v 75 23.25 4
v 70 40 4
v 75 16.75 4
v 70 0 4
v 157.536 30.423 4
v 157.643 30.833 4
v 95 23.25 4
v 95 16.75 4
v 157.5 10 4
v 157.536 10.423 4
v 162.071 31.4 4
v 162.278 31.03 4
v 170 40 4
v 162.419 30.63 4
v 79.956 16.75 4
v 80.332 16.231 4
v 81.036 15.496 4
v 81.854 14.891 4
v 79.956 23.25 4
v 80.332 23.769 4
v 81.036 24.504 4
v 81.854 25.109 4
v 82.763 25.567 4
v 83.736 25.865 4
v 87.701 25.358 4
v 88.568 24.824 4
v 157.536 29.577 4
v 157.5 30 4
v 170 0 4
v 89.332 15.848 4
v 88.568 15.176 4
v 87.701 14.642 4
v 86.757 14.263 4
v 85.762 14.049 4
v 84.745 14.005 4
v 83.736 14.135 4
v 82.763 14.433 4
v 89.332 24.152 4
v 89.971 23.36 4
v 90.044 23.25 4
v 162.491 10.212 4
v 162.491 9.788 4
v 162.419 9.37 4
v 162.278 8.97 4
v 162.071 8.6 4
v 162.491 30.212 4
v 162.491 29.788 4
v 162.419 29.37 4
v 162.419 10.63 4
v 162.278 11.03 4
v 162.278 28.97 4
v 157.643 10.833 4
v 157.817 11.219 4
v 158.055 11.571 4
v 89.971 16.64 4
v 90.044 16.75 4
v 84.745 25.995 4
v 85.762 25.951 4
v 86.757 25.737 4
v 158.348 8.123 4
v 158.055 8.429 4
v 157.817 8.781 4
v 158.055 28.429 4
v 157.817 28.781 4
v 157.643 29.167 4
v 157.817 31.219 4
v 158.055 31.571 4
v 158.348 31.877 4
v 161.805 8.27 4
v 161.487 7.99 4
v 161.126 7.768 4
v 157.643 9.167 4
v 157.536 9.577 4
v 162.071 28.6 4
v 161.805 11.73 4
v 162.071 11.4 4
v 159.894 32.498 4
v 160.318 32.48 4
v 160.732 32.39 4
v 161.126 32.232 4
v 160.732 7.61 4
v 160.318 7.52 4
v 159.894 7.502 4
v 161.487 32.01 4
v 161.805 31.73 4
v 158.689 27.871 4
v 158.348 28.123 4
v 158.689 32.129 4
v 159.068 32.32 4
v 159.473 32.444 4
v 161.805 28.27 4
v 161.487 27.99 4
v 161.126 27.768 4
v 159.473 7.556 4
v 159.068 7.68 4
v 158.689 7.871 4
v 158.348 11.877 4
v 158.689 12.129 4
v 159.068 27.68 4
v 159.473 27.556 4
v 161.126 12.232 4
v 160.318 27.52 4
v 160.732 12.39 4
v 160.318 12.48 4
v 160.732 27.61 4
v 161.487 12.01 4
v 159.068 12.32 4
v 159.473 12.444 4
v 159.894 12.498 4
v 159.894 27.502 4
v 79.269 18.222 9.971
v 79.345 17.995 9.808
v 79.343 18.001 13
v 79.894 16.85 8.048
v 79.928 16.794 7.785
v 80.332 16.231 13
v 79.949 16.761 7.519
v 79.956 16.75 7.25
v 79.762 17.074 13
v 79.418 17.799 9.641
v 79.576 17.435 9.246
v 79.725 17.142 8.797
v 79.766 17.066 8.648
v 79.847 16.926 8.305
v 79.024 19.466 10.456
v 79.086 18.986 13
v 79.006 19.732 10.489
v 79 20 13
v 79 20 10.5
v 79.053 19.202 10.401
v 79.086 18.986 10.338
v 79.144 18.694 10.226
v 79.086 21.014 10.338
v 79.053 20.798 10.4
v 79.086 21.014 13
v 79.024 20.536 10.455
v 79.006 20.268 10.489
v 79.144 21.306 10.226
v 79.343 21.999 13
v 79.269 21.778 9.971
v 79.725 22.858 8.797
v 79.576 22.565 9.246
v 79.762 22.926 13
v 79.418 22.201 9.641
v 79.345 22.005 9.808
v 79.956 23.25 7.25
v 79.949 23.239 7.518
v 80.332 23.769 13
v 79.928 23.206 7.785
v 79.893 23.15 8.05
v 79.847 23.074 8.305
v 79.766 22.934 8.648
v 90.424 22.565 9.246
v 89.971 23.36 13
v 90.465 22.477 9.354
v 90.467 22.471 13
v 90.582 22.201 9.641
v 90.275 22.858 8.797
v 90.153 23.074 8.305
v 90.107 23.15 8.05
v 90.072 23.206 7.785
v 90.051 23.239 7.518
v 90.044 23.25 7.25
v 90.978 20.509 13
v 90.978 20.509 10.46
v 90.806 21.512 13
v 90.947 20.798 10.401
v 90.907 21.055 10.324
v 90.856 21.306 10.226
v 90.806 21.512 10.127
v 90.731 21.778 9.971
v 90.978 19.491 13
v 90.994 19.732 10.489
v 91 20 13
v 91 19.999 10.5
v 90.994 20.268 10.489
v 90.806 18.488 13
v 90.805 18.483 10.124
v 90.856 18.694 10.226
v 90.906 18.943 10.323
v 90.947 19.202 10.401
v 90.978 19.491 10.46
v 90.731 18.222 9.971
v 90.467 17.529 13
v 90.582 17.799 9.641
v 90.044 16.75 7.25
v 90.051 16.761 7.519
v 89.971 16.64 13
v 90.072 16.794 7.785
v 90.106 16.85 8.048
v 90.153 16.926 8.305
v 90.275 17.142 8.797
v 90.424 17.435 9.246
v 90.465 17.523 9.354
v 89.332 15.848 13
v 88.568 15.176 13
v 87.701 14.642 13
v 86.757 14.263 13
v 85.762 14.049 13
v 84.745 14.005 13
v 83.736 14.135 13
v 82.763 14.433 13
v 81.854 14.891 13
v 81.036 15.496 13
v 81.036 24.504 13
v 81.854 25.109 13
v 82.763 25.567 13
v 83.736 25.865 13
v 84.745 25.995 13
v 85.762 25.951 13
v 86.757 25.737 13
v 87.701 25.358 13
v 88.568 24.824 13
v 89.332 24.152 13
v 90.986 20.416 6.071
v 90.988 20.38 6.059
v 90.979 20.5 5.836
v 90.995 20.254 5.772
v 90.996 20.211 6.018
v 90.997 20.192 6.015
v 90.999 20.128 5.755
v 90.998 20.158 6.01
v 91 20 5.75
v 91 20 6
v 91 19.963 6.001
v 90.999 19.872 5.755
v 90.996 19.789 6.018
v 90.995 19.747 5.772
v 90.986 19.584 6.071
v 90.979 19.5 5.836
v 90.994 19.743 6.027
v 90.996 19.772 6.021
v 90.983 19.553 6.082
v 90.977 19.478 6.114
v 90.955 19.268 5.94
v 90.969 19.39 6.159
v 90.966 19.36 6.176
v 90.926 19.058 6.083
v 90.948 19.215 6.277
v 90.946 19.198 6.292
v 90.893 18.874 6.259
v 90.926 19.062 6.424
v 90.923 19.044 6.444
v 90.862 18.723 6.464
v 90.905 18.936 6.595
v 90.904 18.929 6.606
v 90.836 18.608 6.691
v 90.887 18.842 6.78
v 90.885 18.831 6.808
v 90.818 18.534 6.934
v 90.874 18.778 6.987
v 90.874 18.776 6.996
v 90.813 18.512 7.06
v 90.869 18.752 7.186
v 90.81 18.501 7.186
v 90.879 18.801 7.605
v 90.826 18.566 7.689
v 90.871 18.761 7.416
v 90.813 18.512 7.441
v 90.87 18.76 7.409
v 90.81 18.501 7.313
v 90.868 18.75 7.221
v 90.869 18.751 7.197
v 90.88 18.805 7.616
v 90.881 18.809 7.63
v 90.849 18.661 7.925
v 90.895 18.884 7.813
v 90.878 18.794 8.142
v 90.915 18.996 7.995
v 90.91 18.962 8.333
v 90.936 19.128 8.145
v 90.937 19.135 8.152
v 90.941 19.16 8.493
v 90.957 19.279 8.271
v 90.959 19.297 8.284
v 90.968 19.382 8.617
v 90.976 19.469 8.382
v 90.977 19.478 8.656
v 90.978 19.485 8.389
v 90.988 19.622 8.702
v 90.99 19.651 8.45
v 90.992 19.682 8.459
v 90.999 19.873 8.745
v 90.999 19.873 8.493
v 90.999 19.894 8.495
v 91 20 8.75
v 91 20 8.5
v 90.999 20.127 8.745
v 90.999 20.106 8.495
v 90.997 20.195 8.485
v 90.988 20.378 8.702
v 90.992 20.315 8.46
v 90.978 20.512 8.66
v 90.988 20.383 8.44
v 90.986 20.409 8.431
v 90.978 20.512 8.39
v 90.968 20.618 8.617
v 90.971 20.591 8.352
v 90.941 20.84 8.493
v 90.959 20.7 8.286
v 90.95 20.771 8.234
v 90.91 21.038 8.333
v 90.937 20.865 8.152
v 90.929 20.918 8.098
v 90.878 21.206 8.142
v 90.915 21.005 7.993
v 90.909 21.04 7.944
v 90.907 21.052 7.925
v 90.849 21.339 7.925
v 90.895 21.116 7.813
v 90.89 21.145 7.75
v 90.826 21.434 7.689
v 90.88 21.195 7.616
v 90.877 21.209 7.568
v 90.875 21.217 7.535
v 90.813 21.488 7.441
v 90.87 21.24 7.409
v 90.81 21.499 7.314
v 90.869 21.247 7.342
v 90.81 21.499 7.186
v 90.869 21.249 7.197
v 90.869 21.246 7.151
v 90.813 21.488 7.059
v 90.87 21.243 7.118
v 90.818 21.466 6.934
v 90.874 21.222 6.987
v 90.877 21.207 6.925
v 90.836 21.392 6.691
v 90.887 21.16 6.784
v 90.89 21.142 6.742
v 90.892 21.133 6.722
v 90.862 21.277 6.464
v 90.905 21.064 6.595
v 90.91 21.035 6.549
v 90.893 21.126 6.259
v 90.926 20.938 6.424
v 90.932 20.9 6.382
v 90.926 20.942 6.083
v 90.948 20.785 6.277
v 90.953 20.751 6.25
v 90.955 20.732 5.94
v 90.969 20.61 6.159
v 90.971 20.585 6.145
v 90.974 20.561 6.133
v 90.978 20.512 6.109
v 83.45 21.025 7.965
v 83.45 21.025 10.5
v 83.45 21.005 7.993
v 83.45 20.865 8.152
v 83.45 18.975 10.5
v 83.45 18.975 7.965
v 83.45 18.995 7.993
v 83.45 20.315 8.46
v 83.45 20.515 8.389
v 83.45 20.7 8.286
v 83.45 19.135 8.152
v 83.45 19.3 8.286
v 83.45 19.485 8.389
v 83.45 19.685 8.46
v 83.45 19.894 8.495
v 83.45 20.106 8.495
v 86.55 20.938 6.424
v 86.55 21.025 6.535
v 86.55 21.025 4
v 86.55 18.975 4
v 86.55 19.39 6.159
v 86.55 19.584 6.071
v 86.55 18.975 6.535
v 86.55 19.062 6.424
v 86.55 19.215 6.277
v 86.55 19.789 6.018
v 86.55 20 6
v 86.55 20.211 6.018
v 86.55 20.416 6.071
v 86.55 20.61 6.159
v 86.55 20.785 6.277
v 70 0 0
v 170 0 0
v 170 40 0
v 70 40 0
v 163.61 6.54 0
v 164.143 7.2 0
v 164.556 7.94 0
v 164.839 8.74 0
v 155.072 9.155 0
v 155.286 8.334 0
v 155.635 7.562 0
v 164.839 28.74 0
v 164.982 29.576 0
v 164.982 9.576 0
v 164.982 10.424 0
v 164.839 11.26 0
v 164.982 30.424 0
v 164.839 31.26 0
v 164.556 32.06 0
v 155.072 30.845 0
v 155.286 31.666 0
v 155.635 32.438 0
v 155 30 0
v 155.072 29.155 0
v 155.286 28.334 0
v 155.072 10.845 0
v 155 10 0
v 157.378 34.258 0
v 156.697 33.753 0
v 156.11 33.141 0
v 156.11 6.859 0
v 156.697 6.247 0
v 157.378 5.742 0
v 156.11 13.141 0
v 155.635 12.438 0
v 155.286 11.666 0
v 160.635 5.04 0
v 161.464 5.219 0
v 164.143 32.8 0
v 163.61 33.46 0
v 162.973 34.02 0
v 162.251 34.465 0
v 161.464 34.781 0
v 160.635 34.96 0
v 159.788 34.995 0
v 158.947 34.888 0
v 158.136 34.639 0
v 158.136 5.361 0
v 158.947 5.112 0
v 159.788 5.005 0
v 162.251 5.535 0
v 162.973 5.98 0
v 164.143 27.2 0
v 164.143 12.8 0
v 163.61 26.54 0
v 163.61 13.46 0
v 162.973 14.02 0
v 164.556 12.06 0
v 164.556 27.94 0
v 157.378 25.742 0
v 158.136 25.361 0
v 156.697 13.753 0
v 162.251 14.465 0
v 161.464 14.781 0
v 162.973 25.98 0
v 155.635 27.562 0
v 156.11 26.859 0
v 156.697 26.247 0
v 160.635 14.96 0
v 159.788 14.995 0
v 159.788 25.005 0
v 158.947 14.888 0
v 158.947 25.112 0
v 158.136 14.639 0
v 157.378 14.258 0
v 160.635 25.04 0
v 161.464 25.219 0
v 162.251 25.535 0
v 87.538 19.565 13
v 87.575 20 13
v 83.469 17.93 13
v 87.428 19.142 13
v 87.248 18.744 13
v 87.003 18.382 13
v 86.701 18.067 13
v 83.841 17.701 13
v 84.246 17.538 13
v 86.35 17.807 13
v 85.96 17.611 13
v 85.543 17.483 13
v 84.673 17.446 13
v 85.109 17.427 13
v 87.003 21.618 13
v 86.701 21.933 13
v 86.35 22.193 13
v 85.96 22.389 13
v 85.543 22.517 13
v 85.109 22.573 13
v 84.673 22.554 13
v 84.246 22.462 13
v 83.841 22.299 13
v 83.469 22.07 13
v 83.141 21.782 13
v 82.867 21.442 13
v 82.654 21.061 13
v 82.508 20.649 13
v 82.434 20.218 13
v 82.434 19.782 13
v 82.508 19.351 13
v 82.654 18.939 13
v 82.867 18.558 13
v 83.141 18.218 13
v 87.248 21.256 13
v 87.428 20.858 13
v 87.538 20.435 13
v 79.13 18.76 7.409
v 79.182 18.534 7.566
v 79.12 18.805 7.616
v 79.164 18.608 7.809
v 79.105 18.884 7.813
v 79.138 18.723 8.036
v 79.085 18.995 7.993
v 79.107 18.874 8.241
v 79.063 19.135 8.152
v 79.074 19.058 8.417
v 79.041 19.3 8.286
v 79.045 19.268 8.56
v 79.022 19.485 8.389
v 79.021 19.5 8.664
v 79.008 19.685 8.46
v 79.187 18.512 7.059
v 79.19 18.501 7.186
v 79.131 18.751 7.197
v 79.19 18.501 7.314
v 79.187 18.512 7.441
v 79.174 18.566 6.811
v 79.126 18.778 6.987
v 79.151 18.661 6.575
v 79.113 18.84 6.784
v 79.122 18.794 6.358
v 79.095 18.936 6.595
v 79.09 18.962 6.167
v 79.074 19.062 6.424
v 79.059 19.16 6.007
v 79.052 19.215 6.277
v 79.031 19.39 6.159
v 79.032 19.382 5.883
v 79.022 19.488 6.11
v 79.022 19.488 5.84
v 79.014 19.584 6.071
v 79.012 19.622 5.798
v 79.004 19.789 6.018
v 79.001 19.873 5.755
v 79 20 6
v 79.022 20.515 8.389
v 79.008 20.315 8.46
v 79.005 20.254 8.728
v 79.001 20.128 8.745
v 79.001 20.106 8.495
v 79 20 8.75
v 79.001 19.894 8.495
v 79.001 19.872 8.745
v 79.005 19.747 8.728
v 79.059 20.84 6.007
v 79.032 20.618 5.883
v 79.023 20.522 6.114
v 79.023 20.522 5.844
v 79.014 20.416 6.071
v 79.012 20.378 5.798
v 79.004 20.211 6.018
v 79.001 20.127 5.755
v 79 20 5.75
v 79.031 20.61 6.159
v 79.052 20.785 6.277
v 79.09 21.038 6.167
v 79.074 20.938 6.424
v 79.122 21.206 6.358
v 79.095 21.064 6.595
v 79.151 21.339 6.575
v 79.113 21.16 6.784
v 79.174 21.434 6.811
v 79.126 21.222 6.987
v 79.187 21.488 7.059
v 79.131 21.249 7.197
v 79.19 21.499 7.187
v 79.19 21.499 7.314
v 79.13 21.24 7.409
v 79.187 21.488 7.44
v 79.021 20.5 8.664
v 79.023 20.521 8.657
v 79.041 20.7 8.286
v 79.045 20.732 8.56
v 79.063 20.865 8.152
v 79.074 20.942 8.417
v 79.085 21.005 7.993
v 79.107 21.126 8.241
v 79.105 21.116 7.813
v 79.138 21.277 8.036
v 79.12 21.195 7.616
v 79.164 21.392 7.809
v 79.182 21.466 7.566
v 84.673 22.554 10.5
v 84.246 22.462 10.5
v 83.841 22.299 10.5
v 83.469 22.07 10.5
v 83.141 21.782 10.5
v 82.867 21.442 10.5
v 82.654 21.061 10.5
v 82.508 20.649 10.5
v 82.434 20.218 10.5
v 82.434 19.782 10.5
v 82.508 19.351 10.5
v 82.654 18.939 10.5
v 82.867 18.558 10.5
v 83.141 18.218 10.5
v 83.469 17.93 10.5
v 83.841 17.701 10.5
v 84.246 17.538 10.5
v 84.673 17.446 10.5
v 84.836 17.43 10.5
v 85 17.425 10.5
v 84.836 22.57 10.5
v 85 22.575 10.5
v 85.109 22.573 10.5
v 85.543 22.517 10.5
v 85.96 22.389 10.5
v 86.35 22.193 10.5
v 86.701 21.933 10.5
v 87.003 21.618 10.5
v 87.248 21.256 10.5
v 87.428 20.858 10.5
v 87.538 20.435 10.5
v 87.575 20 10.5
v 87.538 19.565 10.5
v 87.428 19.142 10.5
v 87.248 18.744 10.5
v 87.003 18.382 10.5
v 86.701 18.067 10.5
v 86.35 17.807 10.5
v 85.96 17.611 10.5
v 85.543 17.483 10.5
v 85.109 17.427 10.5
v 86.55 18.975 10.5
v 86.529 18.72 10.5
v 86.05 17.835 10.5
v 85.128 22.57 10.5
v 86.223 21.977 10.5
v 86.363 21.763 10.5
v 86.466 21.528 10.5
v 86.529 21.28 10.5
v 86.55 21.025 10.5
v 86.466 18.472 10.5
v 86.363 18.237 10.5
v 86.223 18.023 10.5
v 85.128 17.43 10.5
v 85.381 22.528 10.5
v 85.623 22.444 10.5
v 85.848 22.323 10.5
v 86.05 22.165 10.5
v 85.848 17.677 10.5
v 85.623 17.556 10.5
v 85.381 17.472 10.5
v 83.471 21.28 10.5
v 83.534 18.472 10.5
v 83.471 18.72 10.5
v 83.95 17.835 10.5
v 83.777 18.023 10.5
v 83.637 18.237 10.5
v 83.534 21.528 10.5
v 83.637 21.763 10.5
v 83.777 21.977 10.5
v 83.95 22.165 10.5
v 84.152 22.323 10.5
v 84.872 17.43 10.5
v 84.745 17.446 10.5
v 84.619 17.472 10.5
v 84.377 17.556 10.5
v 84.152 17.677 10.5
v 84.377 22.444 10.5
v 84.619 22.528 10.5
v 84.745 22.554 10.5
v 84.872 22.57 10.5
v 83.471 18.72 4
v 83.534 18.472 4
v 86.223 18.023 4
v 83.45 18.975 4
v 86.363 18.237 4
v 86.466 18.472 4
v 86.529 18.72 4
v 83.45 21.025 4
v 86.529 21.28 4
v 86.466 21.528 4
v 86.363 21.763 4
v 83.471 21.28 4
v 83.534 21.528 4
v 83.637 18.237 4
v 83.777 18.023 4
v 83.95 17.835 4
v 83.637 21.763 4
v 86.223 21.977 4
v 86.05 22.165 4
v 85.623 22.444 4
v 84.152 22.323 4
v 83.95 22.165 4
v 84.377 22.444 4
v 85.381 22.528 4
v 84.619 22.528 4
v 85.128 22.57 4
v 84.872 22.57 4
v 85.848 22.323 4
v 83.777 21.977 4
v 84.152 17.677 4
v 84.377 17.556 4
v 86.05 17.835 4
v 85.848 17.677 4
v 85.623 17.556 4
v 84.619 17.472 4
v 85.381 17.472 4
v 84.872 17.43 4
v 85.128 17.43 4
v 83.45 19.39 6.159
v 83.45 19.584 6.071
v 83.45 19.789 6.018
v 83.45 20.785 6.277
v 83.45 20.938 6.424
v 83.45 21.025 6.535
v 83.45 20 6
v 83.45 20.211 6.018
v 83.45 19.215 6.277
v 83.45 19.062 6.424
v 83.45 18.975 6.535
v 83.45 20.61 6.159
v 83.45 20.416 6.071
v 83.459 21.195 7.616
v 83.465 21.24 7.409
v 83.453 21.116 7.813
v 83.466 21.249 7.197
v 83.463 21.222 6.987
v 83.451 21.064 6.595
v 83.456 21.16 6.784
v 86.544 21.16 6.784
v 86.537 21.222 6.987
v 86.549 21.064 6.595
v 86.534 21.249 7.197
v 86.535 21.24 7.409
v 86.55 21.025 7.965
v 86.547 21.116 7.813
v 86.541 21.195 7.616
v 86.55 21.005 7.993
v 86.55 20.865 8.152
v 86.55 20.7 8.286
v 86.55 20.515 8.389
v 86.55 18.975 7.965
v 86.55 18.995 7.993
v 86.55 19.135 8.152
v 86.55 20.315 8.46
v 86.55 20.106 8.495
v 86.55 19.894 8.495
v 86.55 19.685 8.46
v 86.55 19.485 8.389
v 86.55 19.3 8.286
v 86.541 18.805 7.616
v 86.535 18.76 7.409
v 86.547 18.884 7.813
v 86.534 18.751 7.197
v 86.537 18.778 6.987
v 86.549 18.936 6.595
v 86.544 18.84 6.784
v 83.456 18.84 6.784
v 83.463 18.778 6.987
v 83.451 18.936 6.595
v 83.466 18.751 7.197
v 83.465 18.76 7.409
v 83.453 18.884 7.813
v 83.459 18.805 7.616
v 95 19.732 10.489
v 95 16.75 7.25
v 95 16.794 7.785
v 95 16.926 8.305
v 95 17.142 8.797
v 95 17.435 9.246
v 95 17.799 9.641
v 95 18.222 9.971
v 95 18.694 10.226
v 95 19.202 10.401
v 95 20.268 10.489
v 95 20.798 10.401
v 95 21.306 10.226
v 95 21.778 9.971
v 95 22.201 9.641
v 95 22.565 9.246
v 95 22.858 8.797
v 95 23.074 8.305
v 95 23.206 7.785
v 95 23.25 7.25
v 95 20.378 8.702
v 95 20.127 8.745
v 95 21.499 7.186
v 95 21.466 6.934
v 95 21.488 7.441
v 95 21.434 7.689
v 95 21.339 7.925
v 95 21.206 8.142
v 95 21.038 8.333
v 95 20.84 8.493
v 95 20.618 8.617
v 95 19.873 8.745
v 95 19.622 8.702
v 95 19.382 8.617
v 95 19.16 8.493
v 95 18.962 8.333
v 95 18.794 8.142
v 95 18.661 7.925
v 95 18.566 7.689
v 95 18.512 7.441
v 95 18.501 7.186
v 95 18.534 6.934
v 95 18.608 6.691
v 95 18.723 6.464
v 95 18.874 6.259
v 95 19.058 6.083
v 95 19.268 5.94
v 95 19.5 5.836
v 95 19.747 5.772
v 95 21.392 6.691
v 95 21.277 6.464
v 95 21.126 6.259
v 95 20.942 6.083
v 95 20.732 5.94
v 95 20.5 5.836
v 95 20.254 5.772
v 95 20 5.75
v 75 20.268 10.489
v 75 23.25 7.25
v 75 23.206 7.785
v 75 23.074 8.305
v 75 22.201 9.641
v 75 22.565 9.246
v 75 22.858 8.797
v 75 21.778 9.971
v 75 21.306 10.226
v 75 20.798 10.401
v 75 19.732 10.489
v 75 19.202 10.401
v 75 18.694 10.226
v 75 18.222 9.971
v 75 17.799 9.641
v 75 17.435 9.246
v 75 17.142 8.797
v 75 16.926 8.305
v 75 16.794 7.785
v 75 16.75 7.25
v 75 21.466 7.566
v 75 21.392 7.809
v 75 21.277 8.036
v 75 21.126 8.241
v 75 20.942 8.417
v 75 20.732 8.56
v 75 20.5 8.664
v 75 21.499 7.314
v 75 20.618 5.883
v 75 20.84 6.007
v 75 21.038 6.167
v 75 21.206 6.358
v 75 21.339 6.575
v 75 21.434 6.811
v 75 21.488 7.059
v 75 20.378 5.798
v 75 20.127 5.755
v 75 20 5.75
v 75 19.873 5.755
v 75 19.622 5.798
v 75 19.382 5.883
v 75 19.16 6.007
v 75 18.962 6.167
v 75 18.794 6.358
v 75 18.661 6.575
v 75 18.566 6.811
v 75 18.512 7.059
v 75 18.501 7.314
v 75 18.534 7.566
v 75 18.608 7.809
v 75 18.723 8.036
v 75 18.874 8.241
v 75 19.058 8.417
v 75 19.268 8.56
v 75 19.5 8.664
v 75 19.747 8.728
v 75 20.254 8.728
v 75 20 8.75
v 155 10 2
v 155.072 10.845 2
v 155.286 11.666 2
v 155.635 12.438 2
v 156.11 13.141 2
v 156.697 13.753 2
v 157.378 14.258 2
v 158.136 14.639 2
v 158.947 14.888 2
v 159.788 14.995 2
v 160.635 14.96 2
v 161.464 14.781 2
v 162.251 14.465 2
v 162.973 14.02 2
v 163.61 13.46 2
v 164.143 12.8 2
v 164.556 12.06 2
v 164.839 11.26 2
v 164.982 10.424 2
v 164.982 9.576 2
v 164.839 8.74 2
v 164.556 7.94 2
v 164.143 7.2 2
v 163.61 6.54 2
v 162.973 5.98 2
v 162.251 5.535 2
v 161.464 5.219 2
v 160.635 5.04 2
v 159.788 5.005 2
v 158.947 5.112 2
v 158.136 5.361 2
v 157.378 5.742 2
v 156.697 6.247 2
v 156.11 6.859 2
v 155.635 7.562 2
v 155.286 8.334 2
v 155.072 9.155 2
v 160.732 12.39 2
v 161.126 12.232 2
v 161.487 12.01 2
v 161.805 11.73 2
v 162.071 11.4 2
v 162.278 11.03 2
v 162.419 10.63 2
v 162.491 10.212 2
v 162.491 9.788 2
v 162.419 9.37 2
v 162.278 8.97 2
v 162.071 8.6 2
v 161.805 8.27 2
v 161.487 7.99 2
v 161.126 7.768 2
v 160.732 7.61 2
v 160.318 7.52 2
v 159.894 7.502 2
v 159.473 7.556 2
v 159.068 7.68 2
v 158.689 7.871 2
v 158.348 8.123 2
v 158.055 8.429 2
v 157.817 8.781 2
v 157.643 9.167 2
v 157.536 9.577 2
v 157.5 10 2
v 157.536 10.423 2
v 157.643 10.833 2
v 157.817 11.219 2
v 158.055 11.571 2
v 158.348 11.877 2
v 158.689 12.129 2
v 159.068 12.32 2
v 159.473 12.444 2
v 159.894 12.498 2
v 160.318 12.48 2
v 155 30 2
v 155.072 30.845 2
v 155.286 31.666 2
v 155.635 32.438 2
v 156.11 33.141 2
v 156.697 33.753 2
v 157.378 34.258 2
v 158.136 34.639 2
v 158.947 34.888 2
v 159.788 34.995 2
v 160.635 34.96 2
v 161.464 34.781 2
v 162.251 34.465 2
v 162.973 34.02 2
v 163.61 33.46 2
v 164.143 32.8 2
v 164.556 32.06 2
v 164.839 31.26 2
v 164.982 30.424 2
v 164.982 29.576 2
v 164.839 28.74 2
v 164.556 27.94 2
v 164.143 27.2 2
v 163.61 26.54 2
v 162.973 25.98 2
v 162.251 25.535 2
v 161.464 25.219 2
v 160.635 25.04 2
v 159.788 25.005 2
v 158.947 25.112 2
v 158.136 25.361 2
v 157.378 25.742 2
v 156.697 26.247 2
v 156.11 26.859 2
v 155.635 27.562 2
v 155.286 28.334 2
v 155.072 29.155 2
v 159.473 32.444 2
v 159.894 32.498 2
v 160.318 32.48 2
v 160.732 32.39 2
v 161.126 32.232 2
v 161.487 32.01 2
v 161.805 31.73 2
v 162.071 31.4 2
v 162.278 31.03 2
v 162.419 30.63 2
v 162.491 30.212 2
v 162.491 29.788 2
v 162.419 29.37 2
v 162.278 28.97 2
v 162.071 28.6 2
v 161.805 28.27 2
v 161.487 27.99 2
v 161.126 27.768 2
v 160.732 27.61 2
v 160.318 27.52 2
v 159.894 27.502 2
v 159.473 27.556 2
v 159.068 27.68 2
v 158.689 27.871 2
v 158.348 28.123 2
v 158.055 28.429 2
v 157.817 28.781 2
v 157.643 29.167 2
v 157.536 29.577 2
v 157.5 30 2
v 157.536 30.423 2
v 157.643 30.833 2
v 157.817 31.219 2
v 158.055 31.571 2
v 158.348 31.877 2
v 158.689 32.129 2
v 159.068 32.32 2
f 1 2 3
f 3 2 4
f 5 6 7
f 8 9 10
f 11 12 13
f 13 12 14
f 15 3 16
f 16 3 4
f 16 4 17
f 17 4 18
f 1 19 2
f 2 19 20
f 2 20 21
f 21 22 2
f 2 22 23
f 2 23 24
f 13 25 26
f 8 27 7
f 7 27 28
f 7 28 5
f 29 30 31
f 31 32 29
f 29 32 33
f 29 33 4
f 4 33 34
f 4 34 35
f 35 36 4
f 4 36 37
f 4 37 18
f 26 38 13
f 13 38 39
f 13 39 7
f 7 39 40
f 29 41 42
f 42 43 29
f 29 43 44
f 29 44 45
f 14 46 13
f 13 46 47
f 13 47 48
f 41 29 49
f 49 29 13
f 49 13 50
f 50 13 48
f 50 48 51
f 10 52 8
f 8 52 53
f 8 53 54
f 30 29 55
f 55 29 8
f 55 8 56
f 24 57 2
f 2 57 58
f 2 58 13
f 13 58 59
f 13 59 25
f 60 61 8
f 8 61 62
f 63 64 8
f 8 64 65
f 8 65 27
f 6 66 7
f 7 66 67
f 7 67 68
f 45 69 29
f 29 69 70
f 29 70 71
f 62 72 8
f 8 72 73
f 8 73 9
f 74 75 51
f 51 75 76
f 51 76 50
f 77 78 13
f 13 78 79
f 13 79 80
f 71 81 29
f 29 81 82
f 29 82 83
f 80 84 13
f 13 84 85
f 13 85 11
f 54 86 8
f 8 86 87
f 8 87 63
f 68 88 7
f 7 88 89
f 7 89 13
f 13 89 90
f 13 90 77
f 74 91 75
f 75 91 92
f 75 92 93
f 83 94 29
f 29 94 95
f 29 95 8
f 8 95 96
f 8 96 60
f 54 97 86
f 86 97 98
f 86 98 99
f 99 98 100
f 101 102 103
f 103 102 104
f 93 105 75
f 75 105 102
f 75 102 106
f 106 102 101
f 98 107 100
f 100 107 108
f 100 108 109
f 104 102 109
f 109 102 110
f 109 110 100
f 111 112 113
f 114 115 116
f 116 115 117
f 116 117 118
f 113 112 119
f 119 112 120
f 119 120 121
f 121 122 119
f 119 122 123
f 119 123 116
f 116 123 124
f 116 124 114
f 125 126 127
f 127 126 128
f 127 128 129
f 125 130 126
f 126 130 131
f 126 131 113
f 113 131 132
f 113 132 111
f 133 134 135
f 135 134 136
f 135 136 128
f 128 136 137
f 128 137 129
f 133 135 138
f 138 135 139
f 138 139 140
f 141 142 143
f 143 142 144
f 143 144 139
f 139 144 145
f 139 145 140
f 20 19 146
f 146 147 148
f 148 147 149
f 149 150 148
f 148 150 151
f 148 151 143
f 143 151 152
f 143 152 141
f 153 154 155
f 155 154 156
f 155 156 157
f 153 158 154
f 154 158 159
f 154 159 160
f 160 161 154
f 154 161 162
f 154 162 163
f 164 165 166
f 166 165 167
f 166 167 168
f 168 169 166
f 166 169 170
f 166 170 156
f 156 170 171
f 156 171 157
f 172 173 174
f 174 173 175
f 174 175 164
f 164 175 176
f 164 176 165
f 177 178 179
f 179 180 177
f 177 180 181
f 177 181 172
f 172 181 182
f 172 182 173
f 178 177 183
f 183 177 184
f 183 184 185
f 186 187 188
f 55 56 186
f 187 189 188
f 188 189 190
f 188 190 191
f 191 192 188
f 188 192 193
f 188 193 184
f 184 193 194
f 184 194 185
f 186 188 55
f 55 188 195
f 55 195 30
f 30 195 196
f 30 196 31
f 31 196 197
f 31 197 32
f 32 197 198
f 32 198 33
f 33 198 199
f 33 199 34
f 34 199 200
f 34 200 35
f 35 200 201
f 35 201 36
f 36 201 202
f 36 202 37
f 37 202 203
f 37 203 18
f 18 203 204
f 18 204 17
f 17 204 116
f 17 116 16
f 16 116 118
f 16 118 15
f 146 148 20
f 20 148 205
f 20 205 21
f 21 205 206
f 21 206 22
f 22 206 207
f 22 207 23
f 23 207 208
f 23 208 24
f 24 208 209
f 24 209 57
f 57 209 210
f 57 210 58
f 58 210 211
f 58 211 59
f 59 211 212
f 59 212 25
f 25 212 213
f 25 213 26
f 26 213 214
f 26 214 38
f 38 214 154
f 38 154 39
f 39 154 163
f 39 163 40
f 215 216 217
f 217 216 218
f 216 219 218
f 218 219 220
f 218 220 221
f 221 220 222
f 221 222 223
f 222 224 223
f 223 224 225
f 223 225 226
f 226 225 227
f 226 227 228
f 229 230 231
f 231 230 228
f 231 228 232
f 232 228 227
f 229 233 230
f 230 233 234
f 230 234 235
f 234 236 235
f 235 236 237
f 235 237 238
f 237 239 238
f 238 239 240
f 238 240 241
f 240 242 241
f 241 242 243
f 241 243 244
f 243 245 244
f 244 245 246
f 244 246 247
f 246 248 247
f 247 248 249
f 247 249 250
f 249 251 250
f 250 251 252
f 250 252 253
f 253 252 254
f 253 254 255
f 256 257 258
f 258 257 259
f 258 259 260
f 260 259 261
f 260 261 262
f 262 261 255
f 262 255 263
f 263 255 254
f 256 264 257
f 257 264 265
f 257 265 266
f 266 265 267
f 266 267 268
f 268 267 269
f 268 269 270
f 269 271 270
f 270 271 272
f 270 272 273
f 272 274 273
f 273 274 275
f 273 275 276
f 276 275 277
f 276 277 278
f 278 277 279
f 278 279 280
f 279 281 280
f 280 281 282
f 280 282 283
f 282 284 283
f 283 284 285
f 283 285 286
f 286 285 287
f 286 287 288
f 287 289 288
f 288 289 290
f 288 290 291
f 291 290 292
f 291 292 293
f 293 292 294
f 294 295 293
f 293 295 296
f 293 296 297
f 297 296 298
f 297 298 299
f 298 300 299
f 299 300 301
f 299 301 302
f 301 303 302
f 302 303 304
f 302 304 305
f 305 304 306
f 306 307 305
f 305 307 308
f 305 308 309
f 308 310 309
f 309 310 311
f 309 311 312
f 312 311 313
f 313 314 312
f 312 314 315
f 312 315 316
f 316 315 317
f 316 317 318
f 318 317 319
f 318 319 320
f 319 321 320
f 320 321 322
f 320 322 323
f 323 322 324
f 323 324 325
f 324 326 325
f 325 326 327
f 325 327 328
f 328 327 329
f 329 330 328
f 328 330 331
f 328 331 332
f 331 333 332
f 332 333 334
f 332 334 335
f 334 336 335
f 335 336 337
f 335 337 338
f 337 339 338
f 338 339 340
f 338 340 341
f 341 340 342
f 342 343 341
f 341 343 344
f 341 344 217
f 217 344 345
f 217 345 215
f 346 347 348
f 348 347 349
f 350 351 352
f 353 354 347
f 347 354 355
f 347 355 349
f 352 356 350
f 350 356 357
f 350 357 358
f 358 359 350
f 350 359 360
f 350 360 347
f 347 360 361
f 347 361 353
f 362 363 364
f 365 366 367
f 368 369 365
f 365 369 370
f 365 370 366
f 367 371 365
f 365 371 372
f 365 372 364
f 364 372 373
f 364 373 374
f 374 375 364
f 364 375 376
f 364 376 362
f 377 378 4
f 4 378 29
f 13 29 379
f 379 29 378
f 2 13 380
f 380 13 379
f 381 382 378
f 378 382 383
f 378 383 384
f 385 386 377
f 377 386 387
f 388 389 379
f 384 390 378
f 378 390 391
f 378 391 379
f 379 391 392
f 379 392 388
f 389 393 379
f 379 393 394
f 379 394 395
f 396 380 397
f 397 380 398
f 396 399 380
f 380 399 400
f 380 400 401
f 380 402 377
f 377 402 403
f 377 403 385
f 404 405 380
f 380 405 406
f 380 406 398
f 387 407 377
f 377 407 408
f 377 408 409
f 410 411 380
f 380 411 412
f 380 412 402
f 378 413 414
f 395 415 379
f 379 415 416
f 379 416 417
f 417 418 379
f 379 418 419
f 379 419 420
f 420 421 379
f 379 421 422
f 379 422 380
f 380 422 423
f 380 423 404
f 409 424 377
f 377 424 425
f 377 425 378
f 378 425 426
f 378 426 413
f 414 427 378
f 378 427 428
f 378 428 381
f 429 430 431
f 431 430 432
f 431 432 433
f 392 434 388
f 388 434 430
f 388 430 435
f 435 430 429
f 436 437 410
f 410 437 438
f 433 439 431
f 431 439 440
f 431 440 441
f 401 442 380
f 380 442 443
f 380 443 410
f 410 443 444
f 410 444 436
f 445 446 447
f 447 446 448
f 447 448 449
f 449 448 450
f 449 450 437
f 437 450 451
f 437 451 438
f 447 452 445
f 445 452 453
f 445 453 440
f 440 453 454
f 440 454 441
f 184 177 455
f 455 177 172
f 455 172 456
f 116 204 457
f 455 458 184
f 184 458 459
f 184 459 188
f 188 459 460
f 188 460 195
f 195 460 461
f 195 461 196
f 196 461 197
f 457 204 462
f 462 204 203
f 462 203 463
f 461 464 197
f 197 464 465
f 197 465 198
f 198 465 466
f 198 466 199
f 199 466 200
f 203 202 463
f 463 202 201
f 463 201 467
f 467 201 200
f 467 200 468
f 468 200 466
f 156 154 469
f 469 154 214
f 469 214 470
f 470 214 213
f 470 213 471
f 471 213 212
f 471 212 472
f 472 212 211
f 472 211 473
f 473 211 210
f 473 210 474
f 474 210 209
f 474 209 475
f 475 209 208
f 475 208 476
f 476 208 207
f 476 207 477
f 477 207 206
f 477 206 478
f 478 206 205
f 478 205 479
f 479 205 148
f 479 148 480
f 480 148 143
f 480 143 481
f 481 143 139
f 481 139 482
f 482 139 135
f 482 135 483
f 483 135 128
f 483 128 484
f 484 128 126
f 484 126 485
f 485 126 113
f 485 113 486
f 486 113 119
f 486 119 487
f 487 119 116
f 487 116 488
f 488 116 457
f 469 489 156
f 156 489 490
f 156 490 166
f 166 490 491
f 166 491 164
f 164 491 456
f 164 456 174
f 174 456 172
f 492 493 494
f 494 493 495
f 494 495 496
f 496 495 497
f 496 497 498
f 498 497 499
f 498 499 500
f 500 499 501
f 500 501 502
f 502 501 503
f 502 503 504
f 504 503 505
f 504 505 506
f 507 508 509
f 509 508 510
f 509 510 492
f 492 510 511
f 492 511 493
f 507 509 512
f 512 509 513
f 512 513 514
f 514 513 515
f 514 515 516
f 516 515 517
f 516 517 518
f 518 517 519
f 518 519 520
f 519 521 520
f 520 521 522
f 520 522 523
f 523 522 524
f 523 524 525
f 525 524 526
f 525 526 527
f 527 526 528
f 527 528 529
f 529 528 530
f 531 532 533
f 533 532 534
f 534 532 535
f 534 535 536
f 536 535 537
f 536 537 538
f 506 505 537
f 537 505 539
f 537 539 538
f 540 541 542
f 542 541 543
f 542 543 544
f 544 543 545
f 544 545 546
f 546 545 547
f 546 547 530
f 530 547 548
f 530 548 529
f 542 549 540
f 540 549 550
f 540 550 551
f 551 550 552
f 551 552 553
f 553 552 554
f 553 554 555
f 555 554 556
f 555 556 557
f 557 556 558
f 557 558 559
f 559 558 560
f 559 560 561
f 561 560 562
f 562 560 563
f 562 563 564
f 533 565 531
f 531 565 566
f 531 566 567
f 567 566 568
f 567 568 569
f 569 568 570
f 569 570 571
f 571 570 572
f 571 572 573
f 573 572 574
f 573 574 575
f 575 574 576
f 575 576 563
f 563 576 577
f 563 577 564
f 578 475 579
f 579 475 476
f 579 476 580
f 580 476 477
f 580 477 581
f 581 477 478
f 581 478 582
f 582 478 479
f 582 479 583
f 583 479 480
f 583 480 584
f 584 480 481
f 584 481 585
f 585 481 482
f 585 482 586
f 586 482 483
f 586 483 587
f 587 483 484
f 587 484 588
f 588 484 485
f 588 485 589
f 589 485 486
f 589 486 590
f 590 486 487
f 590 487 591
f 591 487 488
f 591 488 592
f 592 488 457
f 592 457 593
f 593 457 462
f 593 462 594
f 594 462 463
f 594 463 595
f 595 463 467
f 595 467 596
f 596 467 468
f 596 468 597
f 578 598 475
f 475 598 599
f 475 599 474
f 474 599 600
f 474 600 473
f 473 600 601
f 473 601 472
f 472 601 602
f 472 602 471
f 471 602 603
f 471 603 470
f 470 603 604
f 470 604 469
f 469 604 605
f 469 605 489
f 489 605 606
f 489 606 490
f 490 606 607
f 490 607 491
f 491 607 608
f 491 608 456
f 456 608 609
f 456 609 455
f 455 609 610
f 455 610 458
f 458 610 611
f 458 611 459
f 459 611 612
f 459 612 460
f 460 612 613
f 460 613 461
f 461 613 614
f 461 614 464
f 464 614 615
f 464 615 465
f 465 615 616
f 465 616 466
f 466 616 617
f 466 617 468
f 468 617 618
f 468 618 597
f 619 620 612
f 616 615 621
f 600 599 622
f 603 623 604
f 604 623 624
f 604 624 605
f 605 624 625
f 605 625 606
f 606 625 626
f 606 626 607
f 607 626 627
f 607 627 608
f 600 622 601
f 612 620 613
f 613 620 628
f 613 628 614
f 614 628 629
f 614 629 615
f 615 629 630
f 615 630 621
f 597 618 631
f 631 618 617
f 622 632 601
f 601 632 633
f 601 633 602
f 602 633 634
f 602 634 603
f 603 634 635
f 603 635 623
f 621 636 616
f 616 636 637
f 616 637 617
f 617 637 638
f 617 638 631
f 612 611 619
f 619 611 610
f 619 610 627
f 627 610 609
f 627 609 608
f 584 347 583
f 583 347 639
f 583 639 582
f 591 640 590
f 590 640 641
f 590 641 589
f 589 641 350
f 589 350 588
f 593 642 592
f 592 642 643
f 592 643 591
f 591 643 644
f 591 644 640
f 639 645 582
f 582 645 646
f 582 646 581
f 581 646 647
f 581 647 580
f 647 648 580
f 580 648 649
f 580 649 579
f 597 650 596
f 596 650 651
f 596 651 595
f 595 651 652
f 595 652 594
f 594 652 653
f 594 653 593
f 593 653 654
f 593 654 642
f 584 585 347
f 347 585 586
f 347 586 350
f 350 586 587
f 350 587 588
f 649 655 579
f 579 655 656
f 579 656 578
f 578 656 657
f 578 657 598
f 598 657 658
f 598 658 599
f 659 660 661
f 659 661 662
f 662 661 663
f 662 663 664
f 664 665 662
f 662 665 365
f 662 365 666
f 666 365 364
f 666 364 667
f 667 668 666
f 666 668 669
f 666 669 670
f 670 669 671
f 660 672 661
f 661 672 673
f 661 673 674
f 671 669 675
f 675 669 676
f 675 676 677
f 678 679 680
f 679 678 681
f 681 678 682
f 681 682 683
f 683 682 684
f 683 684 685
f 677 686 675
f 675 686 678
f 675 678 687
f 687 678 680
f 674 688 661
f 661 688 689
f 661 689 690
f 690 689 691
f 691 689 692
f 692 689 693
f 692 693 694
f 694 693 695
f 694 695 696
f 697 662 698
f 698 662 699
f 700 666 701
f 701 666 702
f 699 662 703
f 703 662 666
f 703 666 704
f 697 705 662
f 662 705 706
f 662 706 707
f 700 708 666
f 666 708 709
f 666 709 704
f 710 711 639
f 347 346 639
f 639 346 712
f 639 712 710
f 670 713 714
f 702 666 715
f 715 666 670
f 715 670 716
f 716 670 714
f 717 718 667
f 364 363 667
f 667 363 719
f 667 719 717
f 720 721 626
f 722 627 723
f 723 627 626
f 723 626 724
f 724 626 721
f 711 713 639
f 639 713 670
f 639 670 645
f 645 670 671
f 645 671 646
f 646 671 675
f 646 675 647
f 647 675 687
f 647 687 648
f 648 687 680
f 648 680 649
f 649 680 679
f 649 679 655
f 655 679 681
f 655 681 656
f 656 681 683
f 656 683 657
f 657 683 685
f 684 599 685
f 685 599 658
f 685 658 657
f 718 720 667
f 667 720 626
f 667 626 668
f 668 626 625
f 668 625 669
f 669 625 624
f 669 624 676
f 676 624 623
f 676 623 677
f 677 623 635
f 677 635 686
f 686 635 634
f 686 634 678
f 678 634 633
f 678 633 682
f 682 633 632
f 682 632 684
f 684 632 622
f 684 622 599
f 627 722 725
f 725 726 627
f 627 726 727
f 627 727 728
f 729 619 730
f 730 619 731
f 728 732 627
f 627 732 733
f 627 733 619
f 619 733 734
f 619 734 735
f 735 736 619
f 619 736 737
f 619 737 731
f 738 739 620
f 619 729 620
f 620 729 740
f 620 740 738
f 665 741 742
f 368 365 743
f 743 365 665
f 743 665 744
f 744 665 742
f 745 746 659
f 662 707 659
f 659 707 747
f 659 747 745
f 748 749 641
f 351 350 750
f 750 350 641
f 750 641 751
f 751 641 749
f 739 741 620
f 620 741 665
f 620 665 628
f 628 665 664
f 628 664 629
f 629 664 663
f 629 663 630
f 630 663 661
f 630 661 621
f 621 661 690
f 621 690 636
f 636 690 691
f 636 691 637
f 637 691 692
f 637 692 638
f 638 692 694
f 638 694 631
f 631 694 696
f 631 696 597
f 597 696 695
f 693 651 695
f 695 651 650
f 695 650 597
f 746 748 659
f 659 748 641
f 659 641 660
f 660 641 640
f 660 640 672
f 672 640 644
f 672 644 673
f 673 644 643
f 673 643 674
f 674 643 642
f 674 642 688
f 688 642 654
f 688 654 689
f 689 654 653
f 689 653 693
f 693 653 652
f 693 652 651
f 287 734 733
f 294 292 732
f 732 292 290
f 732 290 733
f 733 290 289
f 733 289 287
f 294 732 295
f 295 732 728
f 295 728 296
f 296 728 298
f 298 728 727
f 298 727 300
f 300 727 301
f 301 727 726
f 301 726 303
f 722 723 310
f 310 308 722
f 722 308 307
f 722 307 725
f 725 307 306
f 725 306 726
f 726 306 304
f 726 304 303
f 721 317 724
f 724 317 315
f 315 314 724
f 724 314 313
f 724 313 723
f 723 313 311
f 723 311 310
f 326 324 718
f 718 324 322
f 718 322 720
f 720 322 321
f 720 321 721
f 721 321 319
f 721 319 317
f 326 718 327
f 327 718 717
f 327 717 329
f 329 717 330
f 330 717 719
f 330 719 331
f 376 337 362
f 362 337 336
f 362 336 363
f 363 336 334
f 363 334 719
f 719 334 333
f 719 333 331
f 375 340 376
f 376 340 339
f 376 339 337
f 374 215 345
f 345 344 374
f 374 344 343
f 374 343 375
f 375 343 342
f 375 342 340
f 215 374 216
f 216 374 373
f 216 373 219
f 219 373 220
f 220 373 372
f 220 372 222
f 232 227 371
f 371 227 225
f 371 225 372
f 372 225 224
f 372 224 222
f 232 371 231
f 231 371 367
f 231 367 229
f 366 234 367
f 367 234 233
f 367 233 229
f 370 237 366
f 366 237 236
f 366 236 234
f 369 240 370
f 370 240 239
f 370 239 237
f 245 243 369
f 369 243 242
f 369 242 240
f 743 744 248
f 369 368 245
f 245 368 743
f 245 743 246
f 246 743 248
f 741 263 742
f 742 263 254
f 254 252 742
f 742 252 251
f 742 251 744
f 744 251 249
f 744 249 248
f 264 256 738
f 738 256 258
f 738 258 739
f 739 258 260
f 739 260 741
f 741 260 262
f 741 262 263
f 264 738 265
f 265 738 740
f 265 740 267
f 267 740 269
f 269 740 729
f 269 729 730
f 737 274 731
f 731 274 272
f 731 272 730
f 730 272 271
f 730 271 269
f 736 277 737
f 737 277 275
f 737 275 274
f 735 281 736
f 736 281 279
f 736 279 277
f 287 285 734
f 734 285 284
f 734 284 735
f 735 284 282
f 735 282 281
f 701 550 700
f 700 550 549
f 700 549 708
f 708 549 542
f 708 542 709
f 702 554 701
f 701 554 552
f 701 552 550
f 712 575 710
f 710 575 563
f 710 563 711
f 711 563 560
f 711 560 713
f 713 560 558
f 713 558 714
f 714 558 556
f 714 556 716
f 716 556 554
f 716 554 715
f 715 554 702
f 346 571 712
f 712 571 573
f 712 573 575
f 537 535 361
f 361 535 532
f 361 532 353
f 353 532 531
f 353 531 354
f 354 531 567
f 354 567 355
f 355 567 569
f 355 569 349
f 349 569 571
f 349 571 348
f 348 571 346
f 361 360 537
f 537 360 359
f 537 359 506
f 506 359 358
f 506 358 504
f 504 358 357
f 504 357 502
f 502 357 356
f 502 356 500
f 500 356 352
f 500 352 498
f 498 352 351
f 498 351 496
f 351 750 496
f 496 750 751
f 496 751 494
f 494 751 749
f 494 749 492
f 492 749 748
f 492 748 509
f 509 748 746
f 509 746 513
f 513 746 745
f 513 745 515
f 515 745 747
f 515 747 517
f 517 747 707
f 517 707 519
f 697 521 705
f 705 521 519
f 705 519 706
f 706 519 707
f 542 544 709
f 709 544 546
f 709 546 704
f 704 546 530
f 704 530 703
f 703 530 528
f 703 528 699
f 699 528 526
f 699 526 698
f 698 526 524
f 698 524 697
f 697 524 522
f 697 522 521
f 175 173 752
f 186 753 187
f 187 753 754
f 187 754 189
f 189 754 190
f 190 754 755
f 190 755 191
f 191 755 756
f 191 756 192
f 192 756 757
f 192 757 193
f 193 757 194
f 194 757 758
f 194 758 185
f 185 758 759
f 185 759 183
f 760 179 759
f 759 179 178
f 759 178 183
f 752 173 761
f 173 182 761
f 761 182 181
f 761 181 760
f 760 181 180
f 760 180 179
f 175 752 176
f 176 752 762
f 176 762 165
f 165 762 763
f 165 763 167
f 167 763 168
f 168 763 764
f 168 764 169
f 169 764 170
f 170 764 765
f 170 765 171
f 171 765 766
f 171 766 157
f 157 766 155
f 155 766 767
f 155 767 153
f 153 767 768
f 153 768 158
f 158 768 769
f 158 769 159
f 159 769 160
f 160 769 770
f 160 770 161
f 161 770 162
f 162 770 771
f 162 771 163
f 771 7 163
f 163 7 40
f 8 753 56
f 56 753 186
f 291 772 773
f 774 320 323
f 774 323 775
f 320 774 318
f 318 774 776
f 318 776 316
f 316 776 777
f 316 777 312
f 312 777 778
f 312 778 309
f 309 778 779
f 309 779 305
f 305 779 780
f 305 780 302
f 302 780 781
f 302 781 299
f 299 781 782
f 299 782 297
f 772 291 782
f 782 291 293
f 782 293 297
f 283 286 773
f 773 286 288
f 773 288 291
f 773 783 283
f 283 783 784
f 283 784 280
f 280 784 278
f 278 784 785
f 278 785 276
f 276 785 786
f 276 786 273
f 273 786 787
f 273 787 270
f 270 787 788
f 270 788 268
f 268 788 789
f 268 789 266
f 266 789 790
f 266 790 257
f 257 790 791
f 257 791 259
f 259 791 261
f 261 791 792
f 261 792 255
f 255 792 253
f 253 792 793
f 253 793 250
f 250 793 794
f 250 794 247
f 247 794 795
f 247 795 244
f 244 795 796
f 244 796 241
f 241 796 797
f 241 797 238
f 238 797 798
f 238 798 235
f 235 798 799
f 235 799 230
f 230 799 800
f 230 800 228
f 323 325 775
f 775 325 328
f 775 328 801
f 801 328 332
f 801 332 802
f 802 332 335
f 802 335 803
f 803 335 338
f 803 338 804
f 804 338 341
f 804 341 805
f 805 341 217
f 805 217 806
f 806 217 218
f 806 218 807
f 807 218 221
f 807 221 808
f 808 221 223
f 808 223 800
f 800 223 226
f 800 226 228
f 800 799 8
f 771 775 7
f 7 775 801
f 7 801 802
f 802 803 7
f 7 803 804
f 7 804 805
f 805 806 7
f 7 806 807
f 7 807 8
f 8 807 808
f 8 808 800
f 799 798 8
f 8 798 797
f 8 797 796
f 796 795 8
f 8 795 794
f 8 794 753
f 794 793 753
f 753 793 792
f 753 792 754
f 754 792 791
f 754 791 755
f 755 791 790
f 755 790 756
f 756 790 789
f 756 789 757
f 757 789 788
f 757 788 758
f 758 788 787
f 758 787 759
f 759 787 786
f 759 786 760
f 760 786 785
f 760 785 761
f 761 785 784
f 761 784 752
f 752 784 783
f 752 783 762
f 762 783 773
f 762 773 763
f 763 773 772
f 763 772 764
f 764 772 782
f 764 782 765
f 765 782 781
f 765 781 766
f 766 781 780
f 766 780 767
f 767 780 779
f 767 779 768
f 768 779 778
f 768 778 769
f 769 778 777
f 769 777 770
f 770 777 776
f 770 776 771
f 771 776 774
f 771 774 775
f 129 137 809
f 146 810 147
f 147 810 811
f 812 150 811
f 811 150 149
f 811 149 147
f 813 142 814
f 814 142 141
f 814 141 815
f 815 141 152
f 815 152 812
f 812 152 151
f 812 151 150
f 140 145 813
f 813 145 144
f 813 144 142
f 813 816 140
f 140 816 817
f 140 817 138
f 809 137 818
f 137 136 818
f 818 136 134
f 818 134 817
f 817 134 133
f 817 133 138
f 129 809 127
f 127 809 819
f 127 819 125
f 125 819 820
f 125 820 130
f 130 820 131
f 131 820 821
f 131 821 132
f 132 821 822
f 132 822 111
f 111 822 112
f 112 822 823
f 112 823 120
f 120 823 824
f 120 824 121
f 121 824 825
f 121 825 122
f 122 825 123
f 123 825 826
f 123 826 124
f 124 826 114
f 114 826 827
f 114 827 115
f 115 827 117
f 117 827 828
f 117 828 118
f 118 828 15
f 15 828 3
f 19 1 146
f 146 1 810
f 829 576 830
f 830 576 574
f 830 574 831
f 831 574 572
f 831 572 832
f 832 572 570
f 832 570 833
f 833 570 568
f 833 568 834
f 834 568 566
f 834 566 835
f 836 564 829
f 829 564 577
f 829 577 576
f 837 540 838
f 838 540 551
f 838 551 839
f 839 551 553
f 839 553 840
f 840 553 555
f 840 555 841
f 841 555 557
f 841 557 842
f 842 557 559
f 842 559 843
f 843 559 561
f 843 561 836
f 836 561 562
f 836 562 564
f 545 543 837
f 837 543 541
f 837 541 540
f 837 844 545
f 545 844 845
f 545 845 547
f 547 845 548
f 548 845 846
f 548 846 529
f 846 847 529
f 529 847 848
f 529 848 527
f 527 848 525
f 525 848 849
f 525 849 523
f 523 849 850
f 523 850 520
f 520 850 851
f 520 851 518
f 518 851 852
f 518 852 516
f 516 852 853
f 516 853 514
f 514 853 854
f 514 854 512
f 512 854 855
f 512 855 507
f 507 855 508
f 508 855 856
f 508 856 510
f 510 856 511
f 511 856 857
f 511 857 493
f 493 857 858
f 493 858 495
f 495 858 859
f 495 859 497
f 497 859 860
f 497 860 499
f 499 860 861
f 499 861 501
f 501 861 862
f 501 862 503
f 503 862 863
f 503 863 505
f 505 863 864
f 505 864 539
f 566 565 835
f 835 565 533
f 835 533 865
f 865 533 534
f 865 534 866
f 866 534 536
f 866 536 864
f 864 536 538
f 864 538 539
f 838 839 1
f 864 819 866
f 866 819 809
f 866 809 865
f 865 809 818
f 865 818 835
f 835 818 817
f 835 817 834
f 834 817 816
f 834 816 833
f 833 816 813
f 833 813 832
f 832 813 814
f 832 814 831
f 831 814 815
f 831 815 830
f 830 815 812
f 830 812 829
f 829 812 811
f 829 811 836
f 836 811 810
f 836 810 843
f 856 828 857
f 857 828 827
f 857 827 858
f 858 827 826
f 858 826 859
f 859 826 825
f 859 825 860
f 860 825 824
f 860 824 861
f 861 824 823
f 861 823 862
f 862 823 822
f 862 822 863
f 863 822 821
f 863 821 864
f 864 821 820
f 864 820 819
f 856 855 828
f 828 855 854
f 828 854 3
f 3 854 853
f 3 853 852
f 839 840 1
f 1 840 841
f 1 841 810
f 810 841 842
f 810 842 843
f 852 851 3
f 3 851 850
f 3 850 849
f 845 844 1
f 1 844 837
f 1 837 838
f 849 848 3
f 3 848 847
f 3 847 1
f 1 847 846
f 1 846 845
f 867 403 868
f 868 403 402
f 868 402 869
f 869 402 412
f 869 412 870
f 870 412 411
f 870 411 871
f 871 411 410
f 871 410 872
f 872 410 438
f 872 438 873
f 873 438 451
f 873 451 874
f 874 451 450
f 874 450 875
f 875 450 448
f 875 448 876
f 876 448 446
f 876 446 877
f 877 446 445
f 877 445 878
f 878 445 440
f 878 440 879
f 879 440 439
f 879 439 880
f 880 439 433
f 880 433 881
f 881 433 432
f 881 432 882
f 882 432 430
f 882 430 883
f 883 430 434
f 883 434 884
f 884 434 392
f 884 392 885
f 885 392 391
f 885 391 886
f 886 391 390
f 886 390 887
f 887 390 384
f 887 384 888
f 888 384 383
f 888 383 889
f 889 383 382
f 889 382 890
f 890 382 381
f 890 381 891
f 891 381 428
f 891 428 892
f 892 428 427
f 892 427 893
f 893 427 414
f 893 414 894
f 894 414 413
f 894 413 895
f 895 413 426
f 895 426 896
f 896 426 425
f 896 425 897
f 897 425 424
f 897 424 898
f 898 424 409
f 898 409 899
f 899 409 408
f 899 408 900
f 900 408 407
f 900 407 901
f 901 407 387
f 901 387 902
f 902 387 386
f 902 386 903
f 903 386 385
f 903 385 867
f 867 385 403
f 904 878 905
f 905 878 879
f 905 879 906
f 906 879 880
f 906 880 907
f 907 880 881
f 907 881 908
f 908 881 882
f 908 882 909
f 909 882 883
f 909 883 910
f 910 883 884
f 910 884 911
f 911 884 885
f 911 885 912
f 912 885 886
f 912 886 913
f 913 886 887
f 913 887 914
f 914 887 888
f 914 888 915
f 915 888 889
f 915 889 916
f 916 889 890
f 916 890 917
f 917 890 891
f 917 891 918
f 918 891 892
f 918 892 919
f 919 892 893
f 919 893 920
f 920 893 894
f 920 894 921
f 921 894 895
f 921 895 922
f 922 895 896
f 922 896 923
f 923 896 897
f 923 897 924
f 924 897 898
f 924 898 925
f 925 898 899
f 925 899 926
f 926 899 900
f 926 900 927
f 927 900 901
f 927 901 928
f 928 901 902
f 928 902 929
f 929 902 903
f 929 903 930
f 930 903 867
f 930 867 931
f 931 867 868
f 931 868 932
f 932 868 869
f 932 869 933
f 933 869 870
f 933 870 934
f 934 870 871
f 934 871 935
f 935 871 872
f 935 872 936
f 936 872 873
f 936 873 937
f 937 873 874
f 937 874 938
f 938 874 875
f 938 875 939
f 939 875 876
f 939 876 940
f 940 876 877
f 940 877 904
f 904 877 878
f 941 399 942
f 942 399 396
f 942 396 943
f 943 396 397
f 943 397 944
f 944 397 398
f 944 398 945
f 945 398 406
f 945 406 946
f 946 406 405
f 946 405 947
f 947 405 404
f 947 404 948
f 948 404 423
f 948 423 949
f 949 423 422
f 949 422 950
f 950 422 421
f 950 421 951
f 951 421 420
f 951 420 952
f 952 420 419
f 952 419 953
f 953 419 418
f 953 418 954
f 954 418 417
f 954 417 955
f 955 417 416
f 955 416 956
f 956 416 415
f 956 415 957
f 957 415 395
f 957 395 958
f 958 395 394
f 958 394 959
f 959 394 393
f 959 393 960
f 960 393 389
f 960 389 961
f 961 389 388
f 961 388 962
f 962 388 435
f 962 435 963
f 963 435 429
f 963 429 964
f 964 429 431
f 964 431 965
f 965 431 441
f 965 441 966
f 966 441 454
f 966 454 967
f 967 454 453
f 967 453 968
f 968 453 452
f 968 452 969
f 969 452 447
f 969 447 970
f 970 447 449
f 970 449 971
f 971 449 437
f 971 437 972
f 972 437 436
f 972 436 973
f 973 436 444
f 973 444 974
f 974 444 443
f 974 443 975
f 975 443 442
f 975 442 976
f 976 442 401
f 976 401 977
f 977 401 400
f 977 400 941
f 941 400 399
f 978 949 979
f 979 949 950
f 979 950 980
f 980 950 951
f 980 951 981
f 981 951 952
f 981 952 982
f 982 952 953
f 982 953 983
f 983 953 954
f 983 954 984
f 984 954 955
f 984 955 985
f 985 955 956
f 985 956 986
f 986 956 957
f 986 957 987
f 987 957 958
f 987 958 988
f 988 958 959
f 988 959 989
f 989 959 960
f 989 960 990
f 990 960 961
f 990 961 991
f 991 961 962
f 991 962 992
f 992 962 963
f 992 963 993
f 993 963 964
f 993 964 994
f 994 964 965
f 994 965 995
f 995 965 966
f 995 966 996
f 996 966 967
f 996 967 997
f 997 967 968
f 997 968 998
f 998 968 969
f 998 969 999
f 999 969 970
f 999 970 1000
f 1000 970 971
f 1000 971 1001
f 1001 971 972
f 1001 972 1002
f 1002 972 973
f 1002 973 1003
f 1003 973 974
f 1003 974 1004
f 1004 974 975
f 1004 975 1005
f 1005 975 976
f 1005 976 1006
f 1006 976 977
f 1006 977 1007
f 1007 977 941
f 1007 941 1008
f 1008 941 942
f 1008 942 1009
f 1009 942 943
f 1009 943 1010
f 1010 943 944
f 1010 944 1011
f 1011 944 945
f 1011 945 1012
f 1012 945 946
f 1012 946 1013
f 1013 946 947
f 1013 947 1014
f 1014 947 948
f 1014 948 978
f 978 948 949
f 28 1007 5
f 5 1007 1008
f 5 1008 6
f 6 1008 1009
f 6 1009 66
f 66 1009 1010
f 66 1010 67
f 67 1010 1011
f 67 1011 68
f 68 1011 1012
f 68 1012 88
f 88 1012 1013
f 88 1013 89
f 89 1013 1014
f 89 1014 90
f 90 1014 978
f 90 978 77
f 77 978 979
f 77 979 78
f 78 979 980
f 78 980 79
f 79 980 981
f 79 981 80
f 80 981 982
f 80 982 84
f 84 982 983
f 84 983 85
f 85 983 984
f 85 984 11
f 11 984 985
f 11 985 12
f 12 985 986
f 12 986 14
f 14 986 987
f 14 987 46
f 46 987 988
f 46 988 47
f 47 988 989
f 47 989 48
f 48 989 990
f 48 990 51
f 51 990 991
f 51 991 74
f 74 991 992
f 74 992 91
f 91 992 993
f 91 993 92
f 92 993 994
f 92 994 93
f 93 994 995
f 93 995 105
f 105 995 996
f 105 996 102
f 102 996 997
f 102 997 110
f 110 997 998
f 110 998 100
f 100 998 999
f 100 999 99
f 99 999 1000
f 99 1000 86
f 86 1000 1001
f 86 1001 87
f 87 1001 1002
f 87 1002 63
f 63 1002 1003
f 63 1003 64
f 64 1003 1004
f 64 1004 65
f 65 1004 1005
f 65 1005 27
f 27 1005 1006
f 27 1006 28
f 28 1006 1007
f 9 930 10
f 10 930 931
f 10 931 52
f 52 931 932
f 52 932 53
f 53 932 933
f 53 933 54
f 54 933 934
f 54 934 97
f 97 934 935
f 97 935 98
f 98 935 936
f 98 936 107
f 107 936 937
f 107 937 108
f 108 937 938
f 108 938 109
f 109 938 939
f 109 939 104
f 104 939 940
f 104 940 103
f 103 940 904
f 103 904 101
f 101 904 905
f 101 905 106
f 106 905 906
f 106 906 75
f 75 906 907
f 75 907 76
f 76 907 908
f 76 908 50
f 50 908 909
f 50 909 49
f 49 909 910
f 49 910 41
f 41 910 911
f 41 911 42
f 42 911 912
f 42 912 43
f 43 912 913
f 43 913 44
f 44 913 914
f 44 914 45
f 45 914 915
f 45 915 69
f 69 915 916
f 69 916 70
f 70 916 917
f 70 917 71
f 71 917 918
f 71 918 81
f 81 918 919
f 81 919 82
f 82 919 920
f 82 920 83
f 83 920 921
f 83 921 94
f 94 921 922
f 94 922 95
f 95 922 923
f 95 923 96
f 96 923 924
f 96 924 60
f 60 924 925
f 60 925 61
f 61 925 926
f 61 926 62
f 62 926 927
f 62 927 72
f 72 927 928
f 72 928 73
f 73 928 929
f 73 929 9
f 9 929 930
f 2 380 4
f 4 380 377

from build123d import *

# Parameters (mm, degrees)
SKETCH1_W                           = 170
SKETCH1_H                           = 40
BOSS_EXTRUDE1_DEPTH                 = 4
SKETCH2_R                           = 6
BOSS_EXTRUDE2_DEPTH                 = 9
SKETCH3_R                           = 2.575
CUT_EXTRUDE1_DEPTH                  = 2.5
CUT_EXTRUDE2_REACH                  = 98.228
CUT_EXTRUDE2_END_RADIUS             = 6
SKETCH4_R                           = 1.25
CUT_EXTRUDE2_DIRECTION_2_REACH      = 98.228
CUT_EXTRUDE2_DIRECTION_2_END_RADIUS = 6
BOSS_EXTRUDE3_START                 = -1
SKETCH6_R                           = 1.5
BOSS_EXTRUDE3_DEPTH                 = 5
SKETCH8_R                           = 5
CUT_EXTRUDE3_DEPTH                  = 2
CUT_EXTRUDE4_REACH                  = 176.989
SKETCH9_R                           = 2.5
CUT_EXTRUDE5_REACH                  = 176.874
SKETCH10_W                          = 70
SKETCH10_H                          = 40


with BuildPart() as part:
    # Sketch1 → Boss-Extrude1 (new body)
    with BuildSketch(Plane.XY):
        with Locations((85, 20)):
            Rectangle(SKETCH1_W, SKETCH1_H)
    extrude(amount=BOSS_EXTRUDE1_DEPTH)

    # Sketch2 → Boss-Extrude2 (add)
    with BuildSketch(Plane.XY.offset(4)):
        with Locations(Location((85, 20, 0), (0, 0, 180))):
            Circle(SKETCH2_R)
        with BuildLine():
            Line((83.45, 18.975), (83.45, 21.025))
            ThreePointArc((83.45, 21.025), (85, 22.575), (86.55, 21.025))
            Line((86.55, 21.025), (86.55, 18.975))
            ThreePointArc((86.55, 18.975), (85, 17.425), (83.45, 18.975))
        make_face(mode=Mode.SUBTRACT)
    extrude(amount=BOSS_EXTRUDE2_DEPTH)

    # Sketch3 → Cut-Extrude1 (cut)
    with BuildSketch(Plane.XY.offset(13)):
        with Locations((85, 20)):
            Circle(SKETCH3_R)
    extrude(amount=-CUT_EXTRUDE1_DEPTH, mode=Mode.SUBTRACT)

    # Cut-Extrude2: up to this cylinder (the profile starts inside it)
    cut_extrude2_end = Plane(origin=(85, 20, 7.25), z_dir=(0, 0, -1)) * Cylinder(CUT_EXTRUDE2_END_RADIUS, 209.456, mode=Mode.PRIVATE)
    # Sketch4 → Cut-Extrude2 (cut, up to the surface)
    with BuildSketch(Plane(origin=(83.45, 0, 0), x_dir=(0, 0, -1), z_dir=(1, 0, 0)), mode=Mode.PRIVATE) as cut_extrude2_sk1:
        with Locations(Location((-7.25, 20, 0), (0, 0, 304.915206247))):
            Circle(SKETCH4_R)
    cut_extrude2_tool1 = extrude(cut_extrude2_sk1.sketch, amount=-CUT_EXTRUDE2_REACH, mode=Mode.PRIVATE) & cut_extrude2_end
    add(cut_extrude2_tool1.solids().sort_by_distance((83.45, 20, 7.25))[0], mode=Mode.SUBTRACT)

    # Cut-Extrude2 direction 2: up to this cylinder (the profile starts inside it)
    cut_extrude2_direction_2_end = Plane(origin=(85, 20, 7.25), z_dir=(0, 0, -1)) * Cylinder(CUT_EXTRUDE2_DIRECTION_2_END_RADIUS, 209.456, mode=Mode.PRIVATE)
    # Sketch4 → Cut-Extrude2 direction 2 (cut, up to the surface)
    with BuildSketch(Plane(origin=(83.45, 0, 0), x_dir=(0, 0, -1), z_dir=(1, 0, 0)), mode=Mode.PRIVATE) as cut_extrude2_direction_2_sk1:
        with Locations(Location((-7.25, 20, 0), (0, 0, 304.915206247))):
            Circle(SKETCH4_R)
    cut_extrude2_direction_2_tool1 = extrude(cut_extrude2_direction_2_sk1.sketch, amount=CUT_EXTRUDE2_DIRECTION_2_REACH, mode=Mode.PRIVATE) & cut_extrude2_direction_2_end
    add(cut_extrude2_direction_2_tool1.solids().sort_by_distance((83.45, 20, 7.25))[0], mode=Mode.SUBTRACT)

    # Sketch6 → Boss-Extrude3 (add)
    with BuildSketch(Plane(origin=(91, 0, 0), x_dir=(0, 0, -1), z_dir=(1, 0, 0)).offset(BOSS_EXTRUDE3_START)):
        with BuildLine():
            Line((-7.25, 23.25), (-4, 23.25))
            Line((-4, 23.25), (-4, 16.75))
            Line((-4, 16.75), (-7.25, 16.75))
            ThreePointArc((-7.25, 16.75), (-10.5, 20), (-7.25, 23.25))
        make_face()
        with Locations((-7.25, 20)):
            Circle(SKETCH6_R, mode=Mode.SUBTRACT)
    boss_extrude3 = extrude(amount=BOSS_EXTRUDE3_DEPTH)

    # Mirror1: Boss-Extrude3 across plane
    add(boss_extrude3.mirror(Plane.ZY.offset(-85)))

    # Sketch8 → Cut-Extrude3 (cut)
    with BuildSketch(Plane(origin=(0, 0, 0), x_dir=(-1, 0, 0), z_dir=(0, 0, -1))):
        with Locations((-160, 30)):
            Circle(SKETCH8_R)
        with Locations((-160, 10)):
            Circle(SKETCH8_R)
    extrude(amount=-CUT_EXTRUDE3_DEPTH, mode=Mode.SUBTRACT)

    # Sketch9 → Cut-Extrude4 (cut, up to next)
    with BuildSketch(Plane(origin=(0, 0, 2), x_dir=(-1, 0, 0), z_dir=(0, 0, -1)), mode=Mode.PRIVATE) as cut_extrude4_sk1:
        with Locations((-160, 10)):
            Circle(SKETCH9_R)
    cut_extrude4_tool1 = extrude(cut_extrude4_sk1.sketch, amount=-CUT_EXTRUDE4_REACH, mode=Mode.PRIVATE) & part.part
    # Sketch9 → Cut-Extrude4 (cut, up to next)
    with BuildSketch(Plane(origin=(0, 0, 2), x_dir=(-1, 0, 0), z_dir=(0, 0, -1)), mode=Mode.PRIVATE) as cut_extrude4_sk2:
        with Locations((-160, 30)):
            Circle(SKETCH9_R)
    cut_extrude4_tool2 = extrude(cut_extrude4_sk2.sketch, amount=-CUT_EXTRUDE4_REACH, mode=Mode.PRIVATE) & part.part
    add(cut_extrude4_tool1.solids().sort_by_distance((160, 10, 2))[0], mode=Mode.SUBTRACT)
    add(cut_extrude4_tool2.solids().sort_by_distance((160, 30, 2))[0], mode=Mode.SUBTRACT)

    # Sketch10 → Cut-Extrude5 (cut, up to next)
    with BuildSketch(Plane.XY.offset(4), mode=Mode.PRIVATE) as cut_extrude5_sk1:
        with Locations((35, 20)):
            Rectangle(SKETCH10_W, SKETCH10_H)
    cut_extrude5_tool1 = extrude(cut_extrude5_sk1.sketch, amount=-CUT_EXTRUDE5_REACH, mode=Mode.PRIVATE) & part.part
    add(cut_extrude5_tool1.solids().sort_by_distance((35, 20, 4))[0], mode=Mode.SUBTRACT)


solid = part.part
